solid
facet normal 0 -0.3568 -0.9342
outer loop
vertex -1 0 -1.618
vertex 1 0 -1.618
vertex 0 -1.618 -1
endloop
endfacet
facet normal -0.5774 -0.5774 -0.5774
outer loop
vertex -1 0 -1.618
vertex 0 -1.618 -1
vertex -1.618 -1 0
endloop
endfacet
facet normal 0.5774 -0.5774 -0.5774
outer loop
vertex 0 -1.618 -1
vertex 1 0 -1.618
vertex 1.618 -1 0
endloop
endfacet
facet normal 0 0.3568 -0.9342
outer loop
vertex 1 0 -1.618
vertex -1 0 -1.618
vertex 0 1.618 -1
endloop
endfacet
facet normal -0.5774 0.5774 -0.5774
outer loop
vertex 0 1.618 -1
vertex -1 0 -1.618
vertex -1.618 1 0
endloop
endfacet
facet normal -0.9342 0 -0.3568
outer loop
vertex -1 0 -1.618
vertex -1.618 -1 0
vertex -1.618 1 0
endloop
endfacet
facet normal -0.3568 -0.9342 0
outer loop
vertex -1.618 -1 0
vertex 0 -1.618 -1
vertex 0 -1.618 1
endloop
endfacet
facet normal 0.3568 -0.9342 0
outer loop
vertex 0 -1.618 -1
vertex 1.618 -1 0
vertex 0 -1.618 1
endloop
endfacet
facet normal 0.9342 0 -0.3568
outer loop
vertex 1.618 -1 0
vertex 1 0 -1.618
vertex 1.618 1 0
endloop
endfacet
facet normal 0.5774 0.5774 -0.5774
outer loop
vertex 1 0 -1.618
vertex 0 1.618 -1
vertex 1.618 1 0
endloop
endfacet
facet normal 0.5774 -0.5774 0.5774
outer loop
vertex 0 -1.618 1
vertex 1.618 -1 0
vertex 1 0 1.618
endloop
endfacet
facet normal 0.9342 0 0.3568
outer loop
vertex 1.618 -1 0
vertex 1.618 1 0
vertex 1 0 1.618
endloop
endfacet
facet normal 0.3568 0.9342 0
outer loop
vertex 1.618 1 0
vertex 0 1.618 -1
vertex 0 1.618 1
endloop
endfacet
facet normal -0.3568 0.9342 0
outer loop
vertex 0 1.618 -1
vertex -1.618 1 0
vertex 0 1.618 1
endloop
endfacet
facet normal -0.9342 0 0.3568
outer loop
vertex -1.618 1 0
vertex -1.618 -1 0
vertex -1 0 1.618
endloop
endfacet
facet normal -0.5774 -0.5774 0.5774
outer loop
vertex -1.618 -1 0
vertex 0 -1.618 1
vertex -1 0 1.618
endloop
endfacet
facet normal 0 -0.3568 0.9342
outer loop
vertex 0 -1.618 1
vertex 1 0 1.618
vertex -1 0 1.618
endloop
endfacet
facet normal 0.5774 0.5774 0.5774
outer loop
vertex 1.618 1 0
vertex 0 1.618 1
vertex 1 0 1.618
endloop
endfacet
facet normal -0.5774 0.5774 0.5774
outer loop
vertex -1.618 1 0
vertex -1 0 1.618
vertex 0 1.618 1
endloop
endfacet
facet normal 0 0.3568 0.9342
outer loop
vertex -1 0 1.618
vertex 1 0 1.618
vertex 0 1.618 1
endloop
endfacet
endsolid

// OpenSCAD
module Icosahedron () {
polyhedron (
points = [
[-1, 0, -1.61803398875],
[0, -1.61803398875, -1],
[1, 0, -1.61803398875],
[-1.61803398875, -1, 0],
[1.61803398875, -1, 0],
[0, 1.61803398875, -1],
[0, -1.61803398875, 1],
[1.61803398875, 1, 0],
[-1.61803398875, 1, 0],
[-1, 0, 1.61803398875],
[1, 0, 1.61803398875],
[0, 1.61803398875, 1],
],
faces = [
[0, 1, 2],
[0, 3, 1],
[1, 4, 2],
[2, 5, 0],
[5, 8, 0],
[0, 8, 3],
[3, 6, 1],
[1, 6, 4],
[4, 7, 2],
[2, 7, 5],
[6, 10, 4],
[4, 10, 7],
[7, 11, 5],
[5, 11, 8],
[8, 9, 3],
[3, 9, 6],
[6, 9, 10],
[7, 10, 11],
[8, 11, 9],
[9, 11, 10],
]);
}

Icosahedron ();
